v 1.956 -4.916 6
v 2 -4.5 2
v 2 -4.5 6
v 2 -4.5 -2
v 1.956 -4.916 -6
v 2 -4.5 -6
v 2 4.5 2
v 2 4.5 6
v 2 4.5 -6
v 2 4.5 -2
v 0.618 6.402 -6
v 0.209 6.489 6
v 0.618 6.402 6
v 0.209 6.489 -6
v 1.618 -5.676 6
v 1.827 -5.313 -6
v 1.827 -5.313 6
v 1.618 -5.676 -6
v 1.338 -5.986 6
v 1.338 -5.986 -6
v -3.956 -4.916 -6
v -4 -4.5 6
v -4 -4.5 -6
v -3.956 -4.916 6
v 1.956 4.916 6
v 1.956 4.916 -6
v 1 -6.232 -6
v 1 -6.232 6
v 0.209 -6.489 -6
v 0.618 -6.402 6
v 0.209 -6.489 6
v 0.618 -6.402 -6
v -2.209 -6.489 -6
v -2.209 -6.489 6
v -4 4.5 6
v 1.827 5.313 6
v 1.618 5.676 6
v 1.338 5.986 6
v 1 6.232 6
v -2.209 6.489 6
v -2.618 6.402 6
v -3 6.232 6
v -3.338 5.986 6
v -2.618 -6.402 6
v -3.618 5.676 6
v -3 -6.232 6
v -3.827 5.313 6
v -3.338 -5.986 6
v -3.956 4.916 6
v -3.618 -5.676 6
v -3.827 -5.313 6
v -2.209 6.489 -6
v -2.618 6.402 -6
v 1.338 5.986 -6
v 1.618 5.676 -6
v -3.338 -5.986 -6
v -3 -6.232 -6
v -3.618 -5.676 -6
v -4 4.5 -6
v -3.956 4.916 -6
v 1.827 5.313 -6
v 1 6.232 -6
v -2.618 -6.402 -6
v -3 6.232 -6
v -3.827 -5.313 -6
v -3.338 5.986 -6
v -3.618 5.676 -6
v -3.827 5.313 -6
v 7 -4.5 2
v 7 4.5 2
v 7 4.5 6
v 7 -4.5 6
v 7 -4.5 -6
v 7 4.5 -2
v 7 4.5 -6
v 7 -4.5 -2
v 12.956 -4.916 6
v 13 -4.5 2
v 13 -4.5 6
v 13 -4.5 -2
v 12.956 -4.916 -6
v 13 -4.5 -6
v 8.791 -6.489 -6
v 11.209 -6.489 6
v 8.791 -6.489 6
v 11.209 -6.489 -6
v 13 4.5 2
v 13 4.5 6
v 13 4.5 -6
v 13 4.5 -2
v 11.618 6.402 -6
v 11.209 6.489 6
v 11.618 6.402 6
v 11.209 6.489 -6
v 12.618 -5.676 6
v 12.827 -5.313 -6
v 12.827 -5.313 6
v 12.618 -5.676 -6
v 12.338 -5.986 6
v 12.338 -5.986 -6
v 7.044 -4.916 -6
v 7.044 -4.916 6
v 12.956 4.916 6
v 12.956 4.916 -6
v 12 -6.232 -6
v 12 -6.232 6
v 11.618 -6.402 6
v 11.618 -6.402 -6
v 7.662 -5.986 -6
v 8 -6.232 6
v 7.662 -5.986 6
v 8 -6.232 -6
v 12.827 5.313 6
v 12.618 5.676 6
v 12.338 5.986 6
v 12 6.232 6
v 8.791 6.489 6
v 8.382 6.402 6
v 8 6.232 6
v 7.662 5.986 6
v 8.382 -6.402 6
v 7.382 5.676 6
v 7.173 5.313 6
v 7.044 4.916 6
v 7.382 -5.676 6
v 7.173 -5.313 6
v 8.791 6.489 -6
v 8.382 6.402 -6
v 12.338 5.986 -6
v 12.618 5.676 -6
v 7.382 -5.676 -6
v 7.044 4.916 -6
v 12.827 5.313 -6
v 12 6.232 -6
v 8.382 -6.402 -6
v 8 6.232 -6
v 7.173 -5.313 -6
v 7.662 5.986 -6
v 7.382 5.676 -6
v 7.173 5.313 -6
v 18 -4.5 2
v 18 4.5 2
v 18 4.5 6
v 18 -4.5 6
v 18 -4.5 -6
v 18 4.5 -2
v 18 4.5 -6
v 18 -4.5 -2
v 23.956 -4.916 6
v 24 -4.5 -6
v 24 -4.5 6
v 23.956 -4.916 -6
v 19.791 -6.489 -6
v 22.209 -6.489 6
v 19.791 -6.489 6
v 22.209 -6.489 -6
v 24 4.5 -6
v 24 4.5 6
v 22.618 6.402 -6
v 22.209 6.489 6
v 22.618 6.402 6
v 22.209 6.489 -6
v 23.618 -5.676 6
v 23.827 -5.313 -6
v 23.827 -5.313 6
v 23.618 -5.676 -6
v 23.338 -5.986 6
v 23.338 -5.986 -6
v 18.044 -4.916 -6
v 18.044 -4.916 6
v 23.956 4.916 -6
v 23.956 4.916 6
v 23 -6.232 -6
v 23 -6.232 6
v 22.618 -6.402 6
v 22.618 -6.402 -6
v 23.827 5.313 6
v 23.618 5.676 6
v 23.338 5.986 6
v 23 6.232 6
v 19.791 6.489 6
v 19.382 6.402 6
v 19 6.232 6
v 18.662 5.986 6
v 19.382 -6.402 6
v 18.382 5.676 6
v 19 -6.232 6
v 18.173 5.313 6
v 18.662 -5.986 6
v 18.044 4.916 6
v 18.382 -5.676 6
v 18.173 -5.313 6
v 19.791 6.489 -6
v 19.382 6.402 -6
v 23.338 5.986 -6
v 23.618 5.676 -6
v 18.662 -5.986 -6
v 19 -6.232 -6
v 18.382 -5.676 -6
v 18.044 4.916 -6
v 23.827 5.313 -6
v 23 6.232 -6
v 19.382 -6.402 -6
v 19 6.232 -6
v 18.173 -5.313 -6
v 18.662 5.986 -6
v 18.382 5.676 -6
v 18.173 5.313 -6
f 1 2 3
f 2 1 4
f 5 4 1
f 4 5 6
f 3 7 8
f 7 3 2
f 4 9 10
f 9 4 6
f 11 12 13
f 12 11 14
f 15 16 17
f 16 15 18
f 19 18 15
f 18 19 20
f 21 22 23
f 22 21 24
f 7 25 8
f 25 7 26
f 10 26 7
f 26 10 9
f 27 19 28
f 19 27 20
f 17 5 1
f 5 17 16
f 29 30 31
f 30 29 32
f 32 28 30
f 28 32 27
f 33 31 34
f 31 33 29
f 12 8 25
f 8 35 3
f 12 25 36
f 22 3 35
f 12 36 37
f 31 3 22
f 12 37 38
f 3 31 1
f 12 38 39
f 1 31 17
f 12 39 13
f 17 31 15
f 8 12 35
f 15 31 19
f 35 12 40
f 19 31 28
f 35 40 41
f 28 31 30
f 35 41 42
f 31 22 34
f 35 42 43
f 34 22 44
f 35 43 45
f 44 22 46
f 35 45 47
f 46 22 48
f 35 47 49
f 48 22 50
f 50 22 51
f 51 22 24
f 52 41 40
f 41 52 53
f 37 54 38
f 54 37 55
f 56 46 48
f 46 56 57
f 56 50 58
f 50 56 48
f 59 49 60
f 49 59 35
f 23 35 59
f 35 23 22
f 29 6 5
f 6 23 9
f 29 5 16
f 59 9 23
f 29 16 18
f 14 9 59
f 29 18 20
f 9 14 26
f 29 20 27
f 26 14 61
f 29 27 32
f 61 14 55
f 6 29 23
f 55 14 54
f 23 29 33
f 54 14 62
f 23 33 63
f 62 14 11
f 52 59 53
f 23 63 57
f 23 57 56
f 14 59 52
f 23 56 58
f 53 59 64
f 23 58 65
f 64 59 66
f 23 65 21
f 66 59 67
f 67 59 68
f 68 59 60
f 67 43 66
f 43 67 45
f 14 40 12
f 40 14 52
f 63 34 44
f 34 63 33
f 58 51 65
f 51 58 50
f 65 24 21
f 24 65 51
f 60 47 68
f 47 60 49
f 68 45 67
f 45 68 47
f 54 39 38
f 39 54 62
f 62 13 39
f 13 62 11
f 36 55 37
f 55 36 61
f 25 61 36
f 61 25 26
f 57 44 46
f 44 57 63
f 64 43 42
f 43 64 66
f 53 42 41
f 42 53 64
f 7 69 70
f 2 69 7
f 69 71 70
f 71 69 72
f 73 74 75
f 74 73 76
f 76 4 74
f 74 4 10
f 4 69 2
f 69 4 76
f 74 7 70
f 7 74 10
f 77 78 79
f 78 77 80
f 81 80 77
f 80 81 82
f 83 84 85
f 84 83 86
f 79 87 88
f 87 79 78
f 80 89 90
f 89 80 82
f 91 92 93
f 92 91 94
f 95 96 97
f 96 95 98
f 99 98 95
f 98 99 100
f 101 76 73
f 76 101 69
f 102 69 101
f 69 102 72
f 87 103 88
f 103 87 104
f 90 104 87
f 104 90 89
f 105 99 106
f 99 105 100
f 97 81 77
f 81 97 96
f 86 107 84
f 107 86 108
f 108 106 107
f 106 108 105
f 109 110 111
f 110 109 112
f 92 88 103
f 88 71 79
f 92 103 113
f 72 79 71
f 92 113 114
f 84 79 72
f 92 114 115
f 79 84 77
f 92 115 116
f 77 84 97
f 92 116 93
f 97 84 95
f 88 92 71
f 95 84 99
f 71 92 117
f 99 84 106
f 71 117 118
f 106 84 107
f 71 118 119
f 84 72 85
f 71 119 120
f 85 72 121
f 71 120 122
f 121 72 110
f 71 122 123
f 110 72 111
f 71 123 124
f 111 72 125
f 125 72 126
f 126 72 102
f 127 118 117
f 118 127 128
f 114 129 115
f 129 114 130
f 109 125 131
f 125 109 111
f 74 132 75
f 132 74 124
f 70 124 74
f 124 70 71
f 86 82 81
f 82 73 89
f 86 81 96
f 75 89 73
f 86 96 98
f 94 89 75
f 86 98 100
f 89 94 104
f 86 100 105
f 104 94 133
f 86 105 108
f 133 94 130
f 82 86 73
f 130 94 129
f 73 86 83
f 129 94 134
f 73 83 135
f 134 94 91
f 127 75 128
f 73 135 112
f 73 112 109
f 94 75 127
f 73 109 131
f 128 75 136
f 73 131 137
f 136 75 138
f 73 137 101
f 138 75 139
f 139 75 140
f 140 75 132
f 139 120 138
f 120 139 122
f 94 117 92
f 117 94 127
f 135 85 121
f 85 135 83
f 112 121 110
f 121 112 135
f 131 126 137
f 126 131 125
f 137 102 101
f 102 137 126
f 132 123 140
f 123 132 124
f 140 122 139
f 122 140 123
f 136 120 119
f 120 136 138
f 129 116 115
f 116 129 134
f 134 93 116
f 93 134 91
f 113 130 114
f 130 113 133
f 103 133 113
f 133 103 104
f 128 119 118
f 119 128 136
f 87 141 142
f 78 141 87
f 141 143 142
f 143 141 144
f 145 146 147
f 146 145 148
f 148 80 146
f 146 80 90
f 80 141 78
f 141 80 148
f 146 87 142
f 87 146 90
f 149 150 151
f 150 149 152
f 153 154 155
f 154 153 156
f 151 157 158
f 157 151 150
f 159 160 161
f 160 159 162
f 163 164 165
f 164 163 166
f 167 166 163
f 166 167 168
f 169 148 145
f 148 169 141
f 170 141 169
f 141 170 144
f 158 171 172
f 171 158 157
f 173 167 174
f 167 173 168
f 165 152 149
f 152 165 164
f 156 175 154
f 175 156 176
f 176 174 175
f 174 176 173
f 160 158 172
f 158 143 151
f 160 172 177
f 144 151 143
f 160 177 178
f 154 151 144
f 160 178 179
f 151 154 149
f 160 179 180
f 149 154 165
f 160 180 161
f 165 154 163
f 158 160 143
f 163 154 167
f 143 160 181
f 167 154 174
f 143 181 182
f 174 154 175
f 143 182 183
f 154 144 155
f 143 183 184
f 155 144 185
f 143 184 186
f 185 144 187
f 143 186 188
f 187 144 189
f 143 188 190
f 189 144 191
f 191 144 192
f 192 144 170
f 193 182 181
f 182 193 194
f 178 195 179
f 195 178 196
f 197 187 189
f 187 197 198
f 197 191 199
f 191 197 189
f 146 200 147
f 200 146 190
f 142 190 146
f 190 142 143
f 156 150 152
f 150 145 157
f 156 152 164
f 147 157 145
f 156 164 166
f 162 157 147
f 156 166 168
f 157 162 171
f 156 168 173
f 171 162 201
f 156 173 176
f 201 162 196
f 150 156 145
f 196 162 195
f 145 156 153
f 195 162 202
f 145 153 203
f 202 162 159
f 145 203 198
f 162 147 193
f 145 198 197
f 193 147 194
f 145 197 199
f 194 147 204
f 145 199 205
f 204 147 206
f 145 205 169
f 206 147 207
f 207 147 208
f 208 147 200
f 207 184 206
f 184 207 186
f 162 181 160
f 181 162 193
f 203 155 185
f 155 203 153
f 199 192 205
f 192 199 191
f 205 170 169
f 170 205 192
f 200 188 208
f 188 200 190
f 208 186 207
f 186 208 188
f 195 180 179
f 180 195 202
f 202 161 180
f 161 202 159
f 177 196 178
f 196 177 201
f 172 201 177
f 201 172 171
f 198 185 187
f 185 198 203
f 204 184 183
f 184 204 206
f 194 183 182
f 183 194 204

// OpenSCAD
$fn=30;
height=12;
radius=2;
union(){
    hull(){
        translate([0,-4.5,0])cylinder(r=radius,h=height, center=true);
        translate([-2,4.5,0])cylinder(r=radius,h=height, center=true);
        translate([0,4.5,0])cylinder(r=radius,h=height, center=true);
        translate([-2,-4.5,0])cylinder(r=radius,h=height, center=true);
  }
  translate([4.5,0,0])cube([radius/0.4,radius+7,radius+2],center=true);
   translate([11,0,0]) hull(){
        translate([0,-4.5,0])cylinder(r=radius,h=height, center=true);
        translate([-2,4.5,0])cylinder(r=radius,h=height, center=true);
        translate([0,4.5,0])cylinder(r=radius,h=height, center=true);
        translate([-2,-4.5,0])cylinder(r=radius,h=height, center=true);
  }
  translate([15.5,0,0])cube([radius/0.4,radius+7,radius+2],center=true);
   translate([22,0,0]) hull(){
        translate([0,-4.5,0])cylinder(r=radius,h=height, center=true);
        translate([-2,4.5,0])cylinder(r=radius,h=height, center=true);
        translate([0,4.5,0])cylinder(r=radius,h=height, center=true);
        translate([-2,-4.5,0])cylinder(r=radius,h=height, center=true); 
   }
}
